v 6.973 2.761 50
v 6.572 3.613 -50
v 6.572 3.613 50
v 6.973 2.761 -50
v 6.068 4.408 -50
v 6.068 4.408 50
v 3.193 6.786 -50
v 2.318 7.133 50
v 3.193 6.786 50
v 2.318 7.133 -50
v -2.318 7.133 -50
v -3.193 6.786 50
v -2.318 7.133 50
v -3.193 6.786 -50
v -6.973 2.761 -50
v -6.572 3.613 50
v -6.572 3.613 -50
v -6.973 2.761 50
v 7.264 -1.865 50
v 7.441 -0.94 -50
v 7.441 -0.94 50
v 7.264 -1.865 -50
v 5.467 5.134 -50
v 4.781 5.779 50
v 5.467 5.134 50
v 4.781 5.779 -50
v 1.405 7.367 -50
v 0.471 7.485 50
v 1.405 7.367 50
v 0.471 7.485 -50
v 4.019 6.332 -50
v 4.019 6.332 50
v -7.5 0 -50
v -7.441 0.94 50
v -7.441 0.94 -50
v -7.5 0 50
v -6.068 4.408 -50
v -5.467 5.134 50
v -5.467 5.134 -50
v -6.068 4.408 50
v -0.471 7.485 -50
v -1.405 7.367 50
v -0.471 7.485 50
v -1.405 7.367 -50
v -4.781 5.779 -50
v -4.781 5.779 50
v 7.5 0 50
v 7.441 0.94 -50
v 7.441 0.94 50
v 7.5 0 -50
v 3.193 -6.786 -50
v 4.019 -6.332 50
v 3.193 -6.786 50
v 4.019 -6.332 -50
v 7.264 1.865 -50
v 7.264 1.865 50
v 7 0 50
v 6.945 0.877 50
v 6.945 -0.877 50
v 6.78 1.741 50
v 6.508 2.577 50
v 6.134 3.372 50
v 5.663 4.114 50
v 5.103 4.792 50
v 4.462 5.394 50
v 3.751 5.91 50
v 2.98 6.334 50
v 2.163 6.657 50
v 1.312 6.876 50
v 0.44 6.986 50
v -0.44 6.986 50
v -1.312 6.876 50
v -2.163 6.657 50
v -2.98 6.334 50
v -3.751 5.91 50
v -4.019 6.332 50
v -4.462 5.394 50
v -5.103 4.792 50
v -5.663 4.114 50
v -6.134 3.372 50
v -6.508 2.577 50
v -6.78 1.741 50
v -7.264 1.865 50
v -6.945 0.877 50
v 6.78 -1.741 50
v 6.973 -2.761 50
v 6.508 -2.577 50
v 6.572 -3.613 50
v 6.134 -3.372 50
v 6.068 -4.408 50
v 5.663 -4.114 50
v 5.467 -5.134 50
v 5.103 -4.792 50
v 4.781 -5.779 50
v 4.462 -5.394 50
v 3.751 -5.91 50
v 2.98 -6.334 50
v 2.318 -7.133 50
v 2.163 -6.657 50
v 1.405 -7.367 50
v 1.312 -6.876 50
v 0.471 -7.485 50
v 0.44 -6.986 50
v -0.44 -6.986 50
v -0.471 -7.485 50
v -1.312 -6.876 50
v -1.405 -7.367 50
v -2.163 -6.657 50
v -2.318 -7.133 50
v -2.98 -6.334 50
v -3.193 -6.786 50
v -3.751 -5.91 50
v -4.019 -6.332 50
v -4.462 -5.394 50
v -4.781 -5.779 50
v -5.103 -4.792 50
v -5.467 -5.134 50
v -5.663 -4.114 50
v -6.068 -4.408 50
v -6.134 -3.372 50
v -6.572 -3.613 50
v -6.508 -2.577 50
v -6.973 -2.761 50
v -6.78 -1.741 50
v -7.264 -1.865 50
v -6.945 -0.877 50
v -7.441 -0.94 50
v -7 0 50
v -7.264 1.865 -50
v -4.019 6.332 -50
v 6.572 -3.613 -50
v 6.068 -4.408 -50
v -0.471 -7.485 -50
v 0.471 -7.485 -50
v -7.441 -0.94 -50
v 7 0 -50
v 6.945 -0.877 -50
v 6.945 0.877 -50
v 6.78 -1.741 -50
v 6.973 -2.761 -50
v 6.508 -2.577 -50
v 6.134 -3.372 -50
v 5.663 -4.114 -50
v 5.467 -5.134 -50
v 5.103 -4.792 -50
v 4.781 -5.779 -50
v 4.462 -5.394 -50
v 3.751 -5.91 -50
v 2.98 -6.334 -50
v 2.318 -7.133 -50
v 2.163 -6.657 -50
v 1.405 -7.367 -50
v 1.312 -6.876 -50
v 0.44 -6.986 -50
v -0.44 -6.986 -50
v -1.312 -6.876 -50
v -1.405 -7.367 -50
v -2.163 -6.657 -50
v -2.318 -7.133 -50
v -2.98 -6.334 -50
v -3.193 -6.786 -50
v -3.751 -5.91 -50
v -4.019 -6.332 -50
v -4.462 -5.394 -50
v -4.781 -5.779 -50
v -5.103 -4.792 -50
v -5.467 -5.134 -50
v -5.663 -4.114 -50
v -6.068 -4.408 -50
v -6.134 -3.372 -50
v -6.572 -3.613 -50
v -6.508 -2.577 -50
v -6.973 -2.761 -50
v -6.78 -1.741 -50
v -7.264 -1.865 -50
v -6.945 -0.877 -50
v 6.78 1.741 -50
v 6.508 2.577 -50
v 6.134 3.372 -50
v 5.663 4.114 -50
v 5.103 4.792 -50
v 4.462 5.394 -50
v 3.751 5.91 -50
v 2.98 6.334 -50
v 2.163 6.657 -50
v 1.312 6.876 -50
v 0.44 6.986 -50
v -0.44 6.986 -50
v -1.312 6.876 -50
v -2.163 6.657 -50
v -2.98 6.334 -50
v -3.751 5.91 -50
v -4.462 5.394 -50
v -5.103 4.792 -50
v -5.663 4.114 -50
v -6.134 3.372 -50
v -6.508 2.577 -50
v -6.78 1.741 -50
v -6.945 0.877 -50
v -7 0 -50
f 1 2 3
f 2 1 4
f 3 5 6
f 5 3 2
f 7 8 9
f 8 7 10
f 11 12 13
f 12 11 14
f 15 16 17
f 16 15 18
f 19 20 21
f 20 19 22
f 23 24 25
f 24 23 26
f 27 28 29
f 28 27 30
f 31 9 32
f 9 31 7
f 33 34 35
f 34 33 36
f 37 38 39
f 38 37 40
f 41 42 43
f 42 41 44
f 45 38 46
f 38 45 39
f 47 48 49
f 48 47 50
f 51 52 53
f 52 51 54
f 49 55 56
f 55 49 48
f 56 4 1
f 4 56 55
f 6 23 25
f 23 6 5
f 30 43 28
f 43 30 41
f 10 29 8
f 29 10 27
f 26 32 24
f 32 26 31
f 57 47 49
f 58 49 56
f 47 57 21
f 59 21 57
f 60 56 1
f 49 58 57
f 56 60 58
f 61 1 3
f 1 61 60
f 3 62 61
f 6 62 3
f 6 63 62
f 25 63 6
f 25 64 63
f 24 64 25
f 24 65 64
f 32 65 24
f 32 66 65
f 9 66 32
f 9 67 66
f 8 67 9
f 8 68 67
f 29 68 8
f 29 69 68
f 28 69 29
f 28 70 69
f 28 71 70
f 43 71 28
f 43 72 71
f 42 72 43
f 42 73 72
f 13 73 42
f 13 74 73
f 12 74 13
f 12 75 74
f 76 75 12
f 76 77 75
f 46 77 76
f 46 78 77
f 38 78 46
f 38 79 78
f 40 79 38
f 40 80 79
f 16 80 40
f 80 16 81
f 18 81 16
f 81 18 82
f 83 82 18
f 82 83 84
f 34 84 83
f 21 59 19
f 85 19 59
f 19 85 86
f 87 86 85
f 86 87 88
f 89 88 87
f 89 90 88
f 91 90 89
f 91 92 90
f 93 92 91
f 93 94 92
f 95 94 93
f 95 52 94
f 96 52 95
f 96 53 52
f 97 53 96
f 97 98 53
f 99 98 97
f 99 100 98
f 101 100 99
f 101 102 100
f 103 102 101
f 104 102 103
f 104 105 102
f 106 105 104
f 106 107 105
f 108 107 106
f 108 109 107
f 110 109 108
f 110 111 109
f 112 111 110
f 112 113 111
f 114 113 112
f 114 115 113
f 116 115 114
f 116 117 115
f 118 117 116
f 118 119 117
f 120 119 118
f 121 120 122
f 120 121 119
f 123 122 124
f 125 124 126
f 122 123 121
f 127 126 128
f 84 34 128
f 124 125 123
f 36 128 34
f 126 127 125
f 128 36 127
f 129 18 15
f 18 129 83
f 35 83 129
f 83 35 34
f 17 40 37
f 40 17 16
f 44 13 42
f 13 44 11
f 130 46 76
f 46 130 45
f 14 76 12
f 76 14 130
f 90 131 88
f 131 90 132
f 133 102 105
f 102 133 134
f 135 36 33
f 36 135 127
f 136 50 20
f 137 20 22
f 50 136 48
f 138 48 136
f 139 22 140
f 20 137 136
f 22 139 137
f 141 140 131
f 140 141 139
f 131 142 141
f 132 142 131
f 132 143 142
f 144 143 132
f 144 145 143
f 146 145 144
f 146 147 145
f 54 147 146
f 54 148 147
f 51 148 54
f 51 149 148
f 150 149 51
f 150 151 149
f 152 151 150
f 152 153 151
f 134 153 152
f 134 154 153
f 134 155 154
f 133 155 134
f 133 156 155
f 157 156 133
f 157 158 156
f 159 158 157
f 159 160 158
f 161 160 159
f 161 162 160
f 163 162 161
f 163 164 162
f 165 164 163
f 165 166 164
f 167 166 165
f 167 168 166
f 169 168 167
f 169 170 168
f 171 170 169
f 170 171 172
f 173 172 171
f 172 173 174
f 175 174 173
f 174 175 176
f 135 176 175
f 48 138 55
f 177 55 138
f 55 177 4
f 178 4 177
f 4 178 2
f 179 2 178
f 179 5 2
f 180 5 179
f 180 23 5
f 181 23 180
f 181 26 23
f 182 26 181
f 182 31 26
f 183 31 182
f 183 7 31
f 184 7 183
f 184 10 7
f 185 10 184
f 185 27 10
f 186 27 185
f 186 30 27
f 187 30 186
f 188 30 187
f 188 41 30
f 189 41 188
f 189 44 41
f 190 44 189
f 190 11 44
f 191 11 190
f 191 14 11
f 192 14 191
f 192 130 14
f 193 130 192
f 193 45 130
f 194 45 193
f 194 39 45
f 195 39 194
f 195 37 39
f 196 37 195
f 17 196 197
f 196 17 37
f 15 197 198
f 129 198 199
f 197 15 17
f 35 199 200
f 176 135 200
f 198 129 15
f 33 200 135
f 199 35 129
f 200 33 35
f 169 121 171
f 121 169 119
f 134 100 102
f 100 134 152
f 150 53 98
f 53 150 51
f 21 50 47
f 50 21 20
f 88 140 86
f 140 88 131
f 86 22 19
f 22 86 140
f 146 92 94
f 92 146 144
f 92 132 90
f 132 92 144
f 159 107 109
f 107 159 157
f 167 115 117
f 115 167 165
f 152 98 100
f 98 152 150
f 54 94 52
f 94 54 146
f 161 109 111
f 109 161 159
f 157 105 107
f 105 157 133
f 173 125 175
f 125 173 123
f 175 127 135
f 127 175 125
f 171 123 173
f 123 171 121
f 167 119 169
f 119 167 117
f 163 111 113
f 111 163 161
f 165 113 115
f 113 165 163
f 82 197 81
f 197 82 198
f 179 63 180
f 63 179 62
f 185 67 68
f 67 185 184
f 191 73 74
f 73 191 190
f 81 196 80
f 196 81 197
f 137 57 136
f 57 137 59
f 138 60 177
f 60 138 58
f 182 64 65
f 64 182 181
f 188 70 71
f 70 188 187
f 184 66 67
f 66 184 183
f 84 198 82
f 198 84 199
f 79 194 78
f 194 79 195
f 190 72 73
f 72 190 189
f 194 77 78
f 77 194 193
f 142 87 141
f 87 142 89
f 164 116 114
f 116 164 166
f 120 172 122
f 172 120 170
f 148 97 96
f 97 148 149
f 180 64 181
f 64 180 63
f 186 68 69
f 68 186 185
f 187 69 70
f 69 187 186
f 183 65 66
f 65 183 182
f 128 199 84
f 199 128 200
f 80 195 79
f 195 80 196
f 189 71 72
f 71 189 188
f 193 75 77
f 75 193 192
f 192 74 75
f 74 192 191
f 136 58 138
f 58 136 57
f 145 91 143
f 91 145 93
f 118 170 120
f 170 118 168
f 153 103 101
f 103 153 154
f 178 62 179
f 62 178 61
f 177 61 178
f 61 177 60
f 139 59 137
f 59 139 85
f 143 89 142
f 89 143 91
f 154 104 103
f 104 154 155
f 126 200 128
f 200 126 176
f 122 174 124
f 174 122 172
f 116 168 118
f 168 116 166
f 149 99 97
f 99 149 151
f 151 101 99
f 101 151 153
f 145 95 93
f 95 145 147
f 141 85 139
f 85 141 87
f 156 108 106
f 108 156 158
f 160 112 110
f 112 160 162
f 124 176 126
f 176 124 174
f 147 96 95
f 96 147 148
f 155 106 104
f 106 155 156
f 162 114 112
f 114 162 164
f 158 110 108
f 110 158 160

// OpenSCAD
$fn = 50;


difference() {
	union() {
		translate(v = [0, 0, -50.0000000000]) {
			cylinder(h = 100, r = 7.5000000000);
		}
	}
	union() {
		translate(v = [0, 0, -100.0000000000]) {
			cylinder(h = 200, r = 7);
		}
	}
}
